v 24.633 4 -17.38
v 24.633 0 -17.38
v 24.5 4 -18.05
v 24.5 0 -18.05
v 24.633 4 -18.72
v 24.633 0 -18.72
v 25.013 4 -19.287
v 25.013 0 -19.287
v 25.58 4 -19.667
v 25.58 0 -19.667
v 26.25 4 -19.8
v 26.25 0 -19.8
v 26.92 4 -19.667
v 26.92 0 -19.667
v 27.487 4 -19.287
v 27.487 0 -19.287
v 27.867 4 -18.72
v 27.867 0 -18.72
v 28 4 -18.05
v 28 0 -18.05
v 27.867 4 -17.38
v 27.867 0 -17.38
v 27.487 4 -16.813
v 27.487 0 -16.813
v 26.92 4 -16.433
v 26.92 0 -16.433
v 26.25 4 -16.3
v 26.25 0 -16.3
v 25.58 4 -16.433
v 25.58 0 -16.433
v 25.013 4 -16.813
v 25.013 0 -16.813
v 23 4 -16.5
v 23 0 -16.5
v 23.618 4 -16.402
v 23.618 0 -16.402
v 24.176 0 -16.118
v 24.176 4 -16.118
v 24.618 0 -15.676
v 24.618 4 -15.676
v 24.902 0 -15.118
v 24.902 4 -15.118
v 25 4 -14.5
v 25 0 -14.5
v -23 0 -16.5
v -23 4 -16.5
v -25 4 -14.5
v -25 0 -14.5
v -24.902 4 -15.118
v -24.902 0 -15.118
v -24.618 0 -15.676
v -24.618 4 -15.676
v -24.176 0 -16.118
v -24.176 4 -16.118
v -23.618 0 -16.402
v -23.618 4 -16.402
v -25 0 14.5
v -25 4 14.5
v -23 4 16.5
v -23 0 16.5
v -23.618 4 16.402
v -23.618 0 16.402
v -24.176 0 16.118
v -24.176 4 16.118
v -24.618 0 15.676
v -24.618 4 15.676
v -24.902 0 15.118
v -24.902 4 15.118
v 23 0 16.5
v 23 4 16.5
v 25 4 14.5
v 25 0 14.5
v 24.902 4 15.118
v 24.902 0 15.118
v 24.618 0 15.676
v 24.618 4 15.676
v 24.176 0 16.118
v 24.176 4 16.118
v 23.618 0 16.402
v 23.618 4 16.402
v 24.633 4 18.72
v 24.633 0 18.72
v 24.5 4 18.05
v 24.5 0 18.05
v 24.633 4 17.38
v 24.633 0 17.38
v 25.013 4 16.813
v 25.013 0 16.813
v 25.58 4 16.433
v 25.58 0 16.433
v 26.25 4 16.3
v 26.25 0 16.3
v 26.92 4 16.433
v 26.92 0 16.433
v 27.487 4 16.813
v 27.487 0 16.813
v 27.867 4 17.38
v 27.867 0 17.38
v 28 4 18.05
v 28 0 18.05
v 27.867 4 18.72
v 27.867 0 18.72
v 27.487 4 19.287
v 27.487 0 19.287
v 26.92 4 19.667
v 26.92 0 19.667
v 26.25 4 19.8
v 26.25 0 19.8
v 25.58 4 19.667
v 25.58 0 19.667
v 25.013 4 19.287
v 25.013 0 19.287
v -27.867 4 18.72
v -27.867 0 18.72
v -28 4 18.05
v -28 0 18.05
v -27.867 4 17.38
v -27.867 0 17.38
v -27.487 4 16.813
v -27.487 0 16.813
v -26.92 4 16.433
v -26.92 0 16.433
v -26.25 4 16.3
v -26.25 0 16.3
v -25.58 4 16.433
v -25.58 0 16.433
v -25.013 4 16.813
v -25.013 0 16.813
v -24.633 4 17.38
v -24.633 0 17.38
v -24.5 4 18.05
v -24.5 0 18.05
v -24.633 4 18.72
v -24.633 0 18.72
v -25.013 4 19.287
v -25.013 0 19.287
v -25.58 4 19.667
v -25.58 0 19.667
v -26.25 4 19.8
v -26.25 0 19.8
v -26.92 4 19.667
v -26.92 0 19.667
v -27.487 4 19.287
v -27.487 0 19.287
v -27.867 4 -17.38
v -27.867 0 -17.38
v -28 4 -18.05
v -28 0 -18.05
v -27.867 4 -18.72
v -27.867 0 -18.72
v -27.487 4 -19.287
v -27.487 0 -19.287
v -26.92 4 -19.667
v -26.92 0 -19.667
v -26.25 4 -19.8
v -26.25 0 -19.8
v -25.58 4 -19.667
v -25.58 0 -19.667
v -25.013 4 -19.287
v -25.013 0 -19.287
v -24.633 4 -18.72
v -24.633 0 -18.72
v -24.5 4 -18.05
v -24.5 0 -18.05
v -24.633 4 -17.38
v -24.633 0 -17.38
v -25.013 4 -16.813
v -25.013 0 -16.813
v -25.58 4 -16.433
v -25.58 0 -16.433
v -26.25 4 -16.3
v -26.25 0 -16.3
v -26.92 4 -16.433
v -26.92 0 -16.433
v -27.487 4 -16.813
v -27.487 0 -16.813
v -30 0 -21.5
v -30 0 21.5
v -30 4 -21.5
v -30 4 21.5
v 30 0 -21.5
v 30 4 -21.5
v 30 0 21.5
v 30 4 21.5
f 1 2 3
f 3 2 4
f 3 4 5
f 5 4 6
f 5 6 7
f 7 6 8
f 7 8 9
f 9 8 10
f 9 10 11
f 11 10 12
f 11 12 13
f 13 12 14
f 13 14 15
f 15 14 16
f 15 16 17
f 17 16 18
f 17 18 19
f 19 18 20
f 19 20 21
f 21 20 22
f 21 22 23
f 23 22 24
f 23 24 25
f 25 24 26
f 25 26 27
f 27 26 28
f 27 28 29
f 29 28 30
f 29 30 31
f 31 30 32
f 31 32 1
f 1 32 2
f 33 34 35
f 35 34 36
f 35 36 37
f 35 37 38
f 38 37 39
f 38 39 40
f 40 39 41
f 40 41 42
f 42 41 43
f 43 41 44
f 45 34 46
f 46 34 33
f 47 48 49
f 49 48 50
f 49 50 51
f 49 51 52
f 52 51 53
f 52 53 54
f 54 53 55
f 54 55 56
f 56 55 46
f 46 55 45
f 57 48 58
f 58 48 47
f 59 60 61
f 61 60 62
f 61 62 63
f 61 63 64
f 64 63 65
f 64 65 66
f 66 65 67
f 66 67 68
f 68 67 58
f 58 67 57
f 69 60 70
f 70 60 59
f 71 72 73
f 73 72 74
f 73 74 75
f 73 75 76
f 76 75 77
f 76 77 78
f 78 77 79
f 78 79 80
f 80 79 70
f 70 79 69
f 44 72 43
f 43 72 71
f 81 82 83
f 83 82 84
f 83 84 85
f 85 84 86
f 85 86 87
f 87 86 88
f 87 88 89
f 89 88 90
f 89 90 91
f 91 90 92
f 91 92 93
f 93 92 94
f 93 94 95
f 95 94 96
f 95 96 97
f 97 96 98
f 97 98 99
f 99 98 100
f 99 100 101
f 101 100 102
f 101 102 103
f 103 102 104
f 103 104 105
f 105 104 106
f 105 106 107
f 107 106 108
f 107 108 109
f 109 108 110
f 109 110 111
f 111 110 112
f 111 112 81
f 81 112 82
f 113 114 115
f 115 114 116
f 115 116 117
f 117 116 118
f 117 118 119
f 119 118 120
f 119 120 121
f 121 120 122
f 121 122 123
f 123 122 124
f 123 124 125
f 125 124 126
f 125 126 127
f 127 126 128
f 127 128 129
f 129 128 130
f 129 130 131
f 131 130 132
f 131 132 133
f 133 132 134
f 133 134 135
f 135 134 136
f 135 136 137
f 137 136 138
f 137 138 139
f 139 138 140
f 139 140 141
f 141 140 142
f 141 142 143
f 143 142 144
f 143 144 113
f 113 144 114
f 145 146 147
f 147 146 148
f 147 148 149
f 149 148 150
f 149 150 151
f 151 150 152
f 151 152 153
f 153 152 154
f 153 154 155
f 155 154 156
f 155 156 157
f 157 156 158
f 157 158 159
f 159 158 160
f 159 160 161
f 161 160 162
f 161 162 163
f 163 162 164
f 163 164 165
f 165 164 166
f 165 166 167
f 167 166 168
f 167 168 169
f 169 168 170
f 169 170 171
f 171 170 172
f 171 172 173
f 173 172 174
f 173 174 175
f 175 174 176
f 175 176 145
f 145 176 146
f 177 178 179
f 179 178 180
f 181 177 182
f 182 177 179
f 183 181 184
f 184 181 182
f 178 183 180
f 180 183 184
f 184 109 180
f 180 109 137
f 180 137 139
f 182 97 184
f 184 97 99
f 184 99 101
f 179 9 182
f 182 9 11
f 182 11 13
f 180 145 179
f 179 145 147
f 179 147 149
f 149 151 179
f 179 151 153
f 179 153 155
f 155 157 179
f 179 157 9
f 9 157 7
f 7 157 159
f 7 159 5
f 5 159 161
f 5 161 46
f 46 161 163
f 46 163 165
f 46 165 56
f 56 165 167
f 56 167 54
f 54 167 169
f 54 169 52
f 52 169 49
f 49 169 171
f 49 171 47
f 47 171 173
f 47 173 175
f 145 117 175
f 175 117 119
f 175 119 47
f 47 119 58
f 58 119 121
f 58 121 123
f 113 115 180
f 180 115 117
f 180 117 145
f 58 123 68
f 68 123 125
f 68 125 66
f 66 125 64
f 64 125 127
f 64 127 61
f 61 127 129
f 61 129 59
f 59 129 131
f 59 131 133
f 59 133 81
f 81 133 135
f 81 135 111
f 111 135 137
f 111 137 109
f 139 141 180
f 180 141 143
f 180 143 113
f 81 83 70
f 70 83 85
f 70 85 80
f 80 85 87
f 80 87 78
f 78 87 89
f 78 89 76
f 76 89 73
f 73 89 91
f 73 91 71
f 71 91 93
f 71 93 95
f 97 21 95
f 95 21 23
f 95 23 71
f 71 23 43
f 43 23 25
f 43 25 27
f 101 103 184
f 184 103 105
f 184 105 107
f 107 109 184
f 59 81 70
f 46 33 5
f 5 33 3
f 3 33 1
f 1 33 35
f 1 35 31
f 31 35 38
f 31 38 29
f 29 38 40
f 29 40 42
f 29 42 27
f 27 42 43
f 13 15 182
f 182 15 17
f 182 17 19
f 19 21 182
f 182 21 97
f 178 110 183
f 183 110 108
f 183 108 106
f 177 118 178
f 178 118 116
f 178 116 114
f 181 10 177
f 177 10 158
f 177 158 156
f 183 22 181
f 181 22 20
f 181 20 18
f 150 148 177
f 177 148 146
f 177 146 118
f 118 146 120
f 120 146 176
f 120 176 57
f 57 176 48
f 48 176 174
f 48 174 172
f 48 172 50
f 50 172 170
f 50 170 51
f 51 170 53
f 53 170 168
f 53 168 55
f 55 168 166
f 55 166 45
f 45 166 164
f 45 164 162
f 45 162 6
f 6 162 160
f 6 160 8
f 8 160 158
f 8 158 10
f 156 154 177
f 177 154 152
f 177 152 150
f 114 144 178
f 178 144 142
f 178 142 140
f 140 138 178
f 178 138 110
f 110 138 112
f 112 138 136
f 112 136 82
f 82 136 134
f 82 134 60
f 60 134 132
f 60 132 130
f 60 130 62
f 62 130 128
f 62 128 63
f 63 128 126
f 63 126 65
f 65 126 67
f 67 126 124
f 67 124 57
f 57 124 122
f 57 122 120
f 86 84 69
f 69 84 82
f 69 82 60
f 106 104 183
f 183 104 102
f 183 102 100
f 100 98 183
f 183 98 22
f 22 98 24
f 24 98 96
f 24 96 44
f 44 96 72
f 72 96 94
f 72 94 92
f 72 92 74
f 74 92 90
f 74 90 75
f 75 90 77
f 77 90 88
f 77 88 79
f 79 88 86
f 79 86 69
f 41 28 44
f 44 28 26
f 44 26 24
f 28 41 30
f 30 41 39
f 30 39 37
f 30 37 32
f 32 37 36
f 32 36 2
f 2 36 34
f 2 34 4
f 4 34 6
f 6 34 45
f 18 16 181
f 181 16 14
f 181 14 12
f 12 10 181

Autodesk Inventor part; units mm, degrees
ref_plane "YZ Plane" through (0, 0, 0) normal (1, 0, 0) x (0, 1, 0)
ref_plane "XZ Plane" through (0, 0, 0) normal (0, 1, 0) x (-1, 0, 0)
ref_plane "XY Plane" through (0, 0, 0) normal (0, 0, 1) x (1, 0, 0)
sketch "Boceto1" plane through (0, 0, 0) normal (0, 1, 0) x (-1, 0, 0)
  line L0 (-30, -21.5) -> (30, -21.5)
  line L1 (30, -21.5) -> (30, 21.5)
  line L2 (30, 21.5) -> (-30, 21.5)
  line L3 (-30, 21.5) -> (-30, -21.5)
  line L4 (-30, -21.5) -> (30, 21.5) construction
  line L5 (30, -21.5) -> (-30, 21.5) construction
  line L6 (-23, 16.5) -> (23, 16.5)
  line L7 (25, 14.5) -> (25, -14.5)
  line L8 (23, -16.5) -> (-23, -16.5)
  line L9 (-25, -14.5) -> (-25, 14.5)
  line L10 (30, 21.5) -> (28, 21.5)
  line L11 (28, 21.5) -> (28, -21.5)
  line L12 (-30, 21.5) -> (-28, 21.5)
  line L13 (-28, 21.5) -> (-28, -21.5)
  line L14 (30, 21.5) -> (30, 19.8)
  line L15 (30, 19.8) -> (-30, 19.8)
  line L16 (30, -21.5) -> (30, -19.8)
  line L17 (30, -19.8) -> (-30, -19.8)
  circle A0 centre (26.25, -18.05) radius 1.75
  circle A1 centre (26.25, 18.05) radius 1.75
  circle A2 centre (-26.25, 18.05) radius 1.75
  circle A3 centre (-26.25, -18.05) radius 1.75
  arc A4 (25, 14.5) -> (23, 16.5) centre (23, 14.5) ccw
  arc A5 (23, -16.5) -> (25, -14.5) centre (23, -14.5) ccw
  arc A6 (-25, -14.5) -> (-23, -16.5) centre (-23, -14.5) ccw
  arc A7 (-23, 16.5) -> (-25, 14.5) centre (-23, 14.5) ccw
  point P0 (0, 0)
  dimension "d0" = 60
  dimension "d1" = 43
  dimension "d2" = 5
  dimension "d3" = 2
  dimension "d4" = 2
  dimension "d5" = 1.7
  dimension "d6" = 1.7
  dimension "d8" = 3.5
  dimension "d9" = 3.5
  dimension "d10" = 3.5
  dimension "d11" = 3.5
  dimension "d12" = 2
  dimension "d13" = 2
extrude "Extrusión1" add sketch "Boceto1" along normal blind 4 contours L3 L17 L13 L0 | L13 L17 L11 L0 | L3 L15 L13 L17 | L11 L17 L1 L0 | L13 A3 L17 | L3 L2 L13 L15 | L17 A0 L11 | L11 L15 L1 L17 | L13 A2 L15 A1 L11 A0 L17 A3 | L15 A2 L13 | L13 L2 L11 L15 | L15 L11 L2 L1 | A1 L15 L11
properties part number "Buck 1"
